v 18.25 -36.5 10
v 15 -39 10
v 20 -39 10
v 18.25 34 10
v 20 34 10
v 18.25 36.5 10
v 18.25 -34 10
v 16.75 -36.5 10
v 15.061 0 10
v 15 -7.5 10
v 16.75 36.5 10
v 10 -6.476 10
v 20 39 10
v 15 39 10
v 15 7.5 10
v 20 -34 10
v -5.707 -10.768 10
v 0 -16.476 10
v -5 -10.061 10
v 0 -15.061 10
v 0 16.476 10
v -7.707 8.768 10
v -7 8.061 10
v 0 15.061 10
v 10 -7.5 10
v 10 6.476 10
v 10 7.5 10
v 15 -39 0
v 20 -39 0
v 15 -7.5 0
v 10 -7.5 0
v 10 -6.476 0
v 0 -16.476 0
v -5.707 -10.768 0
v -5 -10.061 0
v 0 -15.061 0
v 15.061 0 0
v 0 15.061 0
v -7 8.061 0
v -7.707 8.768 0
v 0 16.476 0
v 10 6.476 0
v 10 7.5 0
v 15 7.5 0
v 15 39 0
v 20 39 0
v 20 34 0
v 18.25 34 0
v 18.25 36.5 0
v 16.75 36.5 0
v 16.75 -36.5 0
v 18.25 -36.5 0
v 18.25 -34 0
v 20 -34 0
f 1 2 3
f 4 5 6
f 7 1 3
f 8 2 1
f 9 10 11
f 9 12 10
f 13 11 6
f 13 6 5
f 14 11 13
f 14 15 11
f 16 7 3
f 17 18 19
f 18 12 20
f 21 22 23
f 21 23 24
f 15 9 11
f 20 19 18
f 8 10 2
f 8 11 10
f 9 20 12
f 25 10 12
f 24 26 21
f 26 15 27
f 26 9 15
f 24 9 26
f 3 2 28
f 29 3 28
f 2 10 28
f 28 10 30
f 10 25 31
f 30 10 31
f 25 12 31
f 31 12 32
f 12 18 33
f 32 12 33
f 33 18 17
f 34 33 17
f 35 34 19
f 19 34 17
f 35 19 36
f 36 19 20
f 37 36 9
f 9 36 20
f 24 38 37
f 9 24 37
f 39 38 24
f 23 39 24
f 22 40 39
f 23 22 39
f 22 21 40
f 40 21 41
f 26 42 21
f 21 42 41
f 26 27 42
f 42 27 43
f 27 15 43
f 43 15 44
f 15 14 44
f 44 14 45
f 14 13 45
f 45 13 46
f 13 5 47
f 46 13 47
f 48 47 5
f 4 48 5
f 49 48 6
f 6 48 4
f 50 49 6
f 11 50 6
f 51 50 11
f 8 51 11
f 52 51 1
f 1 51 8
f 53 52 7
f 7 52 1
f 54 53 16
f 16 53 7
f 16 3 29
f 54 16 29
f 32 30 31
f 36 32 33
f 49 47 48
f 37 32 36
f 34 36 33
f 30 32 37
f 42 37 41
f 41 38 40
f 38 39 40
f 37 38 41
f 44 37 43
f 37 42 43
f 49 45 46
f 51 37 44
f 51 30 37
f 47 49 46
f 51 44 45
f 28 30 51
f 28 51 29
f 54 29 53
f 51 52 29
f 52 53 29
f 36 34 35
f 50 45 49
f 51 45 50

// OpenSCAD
// bracket for a square towel rack
// used to attach a plate from a broken soap dish

$fn=200;
bracket_thickness = 2;
bracket_width = 10;

towel_rack_width = 21.3;
towel_rack_length = 60;

hanger_radius = 12.5;

offset = sqrt(pow(towel_rack_width, 2)/2);
bracket_offset = sqrt(pow(bracket_thickness, 2)/2);

module towel_rack() {
  color("Brown") rotate(a=45, v=[1,0,0]) cube([towel_rack_length, towel_rack_width, towel_rack_width], center=true);
}

module rounded_edge() {
  translate([-bracket_width/2, -towel_rack_width-(hanger_radius-bracket_thickness)-bracket_offset, offset/2]) 
    rotate(a=90, v=[0,1,0]) 
      cylinder(h=bracket_width, r=bracket_thickness/1.5);    
}

module bracket() {
  difference() {
    rotate(a=45, v=[1,0,0]) 
      cube([bracket_width, towel_rack_width+bracket_thickness, towel_rack_width+bracket_thickness], center=true);
    translate([0, -2, -12]) towel_rack();
    //translate([0, -5, -7]) towel_rack();
  }
}

module the_bracket() {
  difference() {
    union() {
      bracket();
      holder();
    }
    towel_rack();
  }
}
translate([0, 0, bracket_width/2]) rotate(a=90, v=[0,1,0]) 
the_bracket();

module cutout() {
  translate([0, -offset*2, -towel_rack_width/3]) cylinder(h=towel_rack_width, r=12.5);
  translate([0, -offset*2-12.5, 0]) cube([25, 25, 25], center=true);
}

holder_length = 78;
holder_width = 5;
plate_length = 73;
plate_height = 1.5;
holder_height = 15;
cutout_length = plate_length - 5;
support_size = 15;
module holder() {
  difference() {
    union() {
      translate([-bracket_width/2,-holder_length/2,holder_height]) 
        cube([bracket_width,holder_length,holder_width]);
      translate([-bracket_width/2,-support_size/2,holder_height-holder_width]) 
        cube([bracket_width,support_size,holder_width]);
    }
    translate([-bracket_width/2-1,-plate_length/2,holder_height+holder_width/2-plate_height/2]) 
      cube([bracket_width+2,plate_length,plate_height]);
    translate([-bracket_width/2-1,-cutout_length/2,holder_height+holder_width/2-plate_height/2]) 
      cube([bracket_width+2,cutout_length,holder_width]);
  }
}
